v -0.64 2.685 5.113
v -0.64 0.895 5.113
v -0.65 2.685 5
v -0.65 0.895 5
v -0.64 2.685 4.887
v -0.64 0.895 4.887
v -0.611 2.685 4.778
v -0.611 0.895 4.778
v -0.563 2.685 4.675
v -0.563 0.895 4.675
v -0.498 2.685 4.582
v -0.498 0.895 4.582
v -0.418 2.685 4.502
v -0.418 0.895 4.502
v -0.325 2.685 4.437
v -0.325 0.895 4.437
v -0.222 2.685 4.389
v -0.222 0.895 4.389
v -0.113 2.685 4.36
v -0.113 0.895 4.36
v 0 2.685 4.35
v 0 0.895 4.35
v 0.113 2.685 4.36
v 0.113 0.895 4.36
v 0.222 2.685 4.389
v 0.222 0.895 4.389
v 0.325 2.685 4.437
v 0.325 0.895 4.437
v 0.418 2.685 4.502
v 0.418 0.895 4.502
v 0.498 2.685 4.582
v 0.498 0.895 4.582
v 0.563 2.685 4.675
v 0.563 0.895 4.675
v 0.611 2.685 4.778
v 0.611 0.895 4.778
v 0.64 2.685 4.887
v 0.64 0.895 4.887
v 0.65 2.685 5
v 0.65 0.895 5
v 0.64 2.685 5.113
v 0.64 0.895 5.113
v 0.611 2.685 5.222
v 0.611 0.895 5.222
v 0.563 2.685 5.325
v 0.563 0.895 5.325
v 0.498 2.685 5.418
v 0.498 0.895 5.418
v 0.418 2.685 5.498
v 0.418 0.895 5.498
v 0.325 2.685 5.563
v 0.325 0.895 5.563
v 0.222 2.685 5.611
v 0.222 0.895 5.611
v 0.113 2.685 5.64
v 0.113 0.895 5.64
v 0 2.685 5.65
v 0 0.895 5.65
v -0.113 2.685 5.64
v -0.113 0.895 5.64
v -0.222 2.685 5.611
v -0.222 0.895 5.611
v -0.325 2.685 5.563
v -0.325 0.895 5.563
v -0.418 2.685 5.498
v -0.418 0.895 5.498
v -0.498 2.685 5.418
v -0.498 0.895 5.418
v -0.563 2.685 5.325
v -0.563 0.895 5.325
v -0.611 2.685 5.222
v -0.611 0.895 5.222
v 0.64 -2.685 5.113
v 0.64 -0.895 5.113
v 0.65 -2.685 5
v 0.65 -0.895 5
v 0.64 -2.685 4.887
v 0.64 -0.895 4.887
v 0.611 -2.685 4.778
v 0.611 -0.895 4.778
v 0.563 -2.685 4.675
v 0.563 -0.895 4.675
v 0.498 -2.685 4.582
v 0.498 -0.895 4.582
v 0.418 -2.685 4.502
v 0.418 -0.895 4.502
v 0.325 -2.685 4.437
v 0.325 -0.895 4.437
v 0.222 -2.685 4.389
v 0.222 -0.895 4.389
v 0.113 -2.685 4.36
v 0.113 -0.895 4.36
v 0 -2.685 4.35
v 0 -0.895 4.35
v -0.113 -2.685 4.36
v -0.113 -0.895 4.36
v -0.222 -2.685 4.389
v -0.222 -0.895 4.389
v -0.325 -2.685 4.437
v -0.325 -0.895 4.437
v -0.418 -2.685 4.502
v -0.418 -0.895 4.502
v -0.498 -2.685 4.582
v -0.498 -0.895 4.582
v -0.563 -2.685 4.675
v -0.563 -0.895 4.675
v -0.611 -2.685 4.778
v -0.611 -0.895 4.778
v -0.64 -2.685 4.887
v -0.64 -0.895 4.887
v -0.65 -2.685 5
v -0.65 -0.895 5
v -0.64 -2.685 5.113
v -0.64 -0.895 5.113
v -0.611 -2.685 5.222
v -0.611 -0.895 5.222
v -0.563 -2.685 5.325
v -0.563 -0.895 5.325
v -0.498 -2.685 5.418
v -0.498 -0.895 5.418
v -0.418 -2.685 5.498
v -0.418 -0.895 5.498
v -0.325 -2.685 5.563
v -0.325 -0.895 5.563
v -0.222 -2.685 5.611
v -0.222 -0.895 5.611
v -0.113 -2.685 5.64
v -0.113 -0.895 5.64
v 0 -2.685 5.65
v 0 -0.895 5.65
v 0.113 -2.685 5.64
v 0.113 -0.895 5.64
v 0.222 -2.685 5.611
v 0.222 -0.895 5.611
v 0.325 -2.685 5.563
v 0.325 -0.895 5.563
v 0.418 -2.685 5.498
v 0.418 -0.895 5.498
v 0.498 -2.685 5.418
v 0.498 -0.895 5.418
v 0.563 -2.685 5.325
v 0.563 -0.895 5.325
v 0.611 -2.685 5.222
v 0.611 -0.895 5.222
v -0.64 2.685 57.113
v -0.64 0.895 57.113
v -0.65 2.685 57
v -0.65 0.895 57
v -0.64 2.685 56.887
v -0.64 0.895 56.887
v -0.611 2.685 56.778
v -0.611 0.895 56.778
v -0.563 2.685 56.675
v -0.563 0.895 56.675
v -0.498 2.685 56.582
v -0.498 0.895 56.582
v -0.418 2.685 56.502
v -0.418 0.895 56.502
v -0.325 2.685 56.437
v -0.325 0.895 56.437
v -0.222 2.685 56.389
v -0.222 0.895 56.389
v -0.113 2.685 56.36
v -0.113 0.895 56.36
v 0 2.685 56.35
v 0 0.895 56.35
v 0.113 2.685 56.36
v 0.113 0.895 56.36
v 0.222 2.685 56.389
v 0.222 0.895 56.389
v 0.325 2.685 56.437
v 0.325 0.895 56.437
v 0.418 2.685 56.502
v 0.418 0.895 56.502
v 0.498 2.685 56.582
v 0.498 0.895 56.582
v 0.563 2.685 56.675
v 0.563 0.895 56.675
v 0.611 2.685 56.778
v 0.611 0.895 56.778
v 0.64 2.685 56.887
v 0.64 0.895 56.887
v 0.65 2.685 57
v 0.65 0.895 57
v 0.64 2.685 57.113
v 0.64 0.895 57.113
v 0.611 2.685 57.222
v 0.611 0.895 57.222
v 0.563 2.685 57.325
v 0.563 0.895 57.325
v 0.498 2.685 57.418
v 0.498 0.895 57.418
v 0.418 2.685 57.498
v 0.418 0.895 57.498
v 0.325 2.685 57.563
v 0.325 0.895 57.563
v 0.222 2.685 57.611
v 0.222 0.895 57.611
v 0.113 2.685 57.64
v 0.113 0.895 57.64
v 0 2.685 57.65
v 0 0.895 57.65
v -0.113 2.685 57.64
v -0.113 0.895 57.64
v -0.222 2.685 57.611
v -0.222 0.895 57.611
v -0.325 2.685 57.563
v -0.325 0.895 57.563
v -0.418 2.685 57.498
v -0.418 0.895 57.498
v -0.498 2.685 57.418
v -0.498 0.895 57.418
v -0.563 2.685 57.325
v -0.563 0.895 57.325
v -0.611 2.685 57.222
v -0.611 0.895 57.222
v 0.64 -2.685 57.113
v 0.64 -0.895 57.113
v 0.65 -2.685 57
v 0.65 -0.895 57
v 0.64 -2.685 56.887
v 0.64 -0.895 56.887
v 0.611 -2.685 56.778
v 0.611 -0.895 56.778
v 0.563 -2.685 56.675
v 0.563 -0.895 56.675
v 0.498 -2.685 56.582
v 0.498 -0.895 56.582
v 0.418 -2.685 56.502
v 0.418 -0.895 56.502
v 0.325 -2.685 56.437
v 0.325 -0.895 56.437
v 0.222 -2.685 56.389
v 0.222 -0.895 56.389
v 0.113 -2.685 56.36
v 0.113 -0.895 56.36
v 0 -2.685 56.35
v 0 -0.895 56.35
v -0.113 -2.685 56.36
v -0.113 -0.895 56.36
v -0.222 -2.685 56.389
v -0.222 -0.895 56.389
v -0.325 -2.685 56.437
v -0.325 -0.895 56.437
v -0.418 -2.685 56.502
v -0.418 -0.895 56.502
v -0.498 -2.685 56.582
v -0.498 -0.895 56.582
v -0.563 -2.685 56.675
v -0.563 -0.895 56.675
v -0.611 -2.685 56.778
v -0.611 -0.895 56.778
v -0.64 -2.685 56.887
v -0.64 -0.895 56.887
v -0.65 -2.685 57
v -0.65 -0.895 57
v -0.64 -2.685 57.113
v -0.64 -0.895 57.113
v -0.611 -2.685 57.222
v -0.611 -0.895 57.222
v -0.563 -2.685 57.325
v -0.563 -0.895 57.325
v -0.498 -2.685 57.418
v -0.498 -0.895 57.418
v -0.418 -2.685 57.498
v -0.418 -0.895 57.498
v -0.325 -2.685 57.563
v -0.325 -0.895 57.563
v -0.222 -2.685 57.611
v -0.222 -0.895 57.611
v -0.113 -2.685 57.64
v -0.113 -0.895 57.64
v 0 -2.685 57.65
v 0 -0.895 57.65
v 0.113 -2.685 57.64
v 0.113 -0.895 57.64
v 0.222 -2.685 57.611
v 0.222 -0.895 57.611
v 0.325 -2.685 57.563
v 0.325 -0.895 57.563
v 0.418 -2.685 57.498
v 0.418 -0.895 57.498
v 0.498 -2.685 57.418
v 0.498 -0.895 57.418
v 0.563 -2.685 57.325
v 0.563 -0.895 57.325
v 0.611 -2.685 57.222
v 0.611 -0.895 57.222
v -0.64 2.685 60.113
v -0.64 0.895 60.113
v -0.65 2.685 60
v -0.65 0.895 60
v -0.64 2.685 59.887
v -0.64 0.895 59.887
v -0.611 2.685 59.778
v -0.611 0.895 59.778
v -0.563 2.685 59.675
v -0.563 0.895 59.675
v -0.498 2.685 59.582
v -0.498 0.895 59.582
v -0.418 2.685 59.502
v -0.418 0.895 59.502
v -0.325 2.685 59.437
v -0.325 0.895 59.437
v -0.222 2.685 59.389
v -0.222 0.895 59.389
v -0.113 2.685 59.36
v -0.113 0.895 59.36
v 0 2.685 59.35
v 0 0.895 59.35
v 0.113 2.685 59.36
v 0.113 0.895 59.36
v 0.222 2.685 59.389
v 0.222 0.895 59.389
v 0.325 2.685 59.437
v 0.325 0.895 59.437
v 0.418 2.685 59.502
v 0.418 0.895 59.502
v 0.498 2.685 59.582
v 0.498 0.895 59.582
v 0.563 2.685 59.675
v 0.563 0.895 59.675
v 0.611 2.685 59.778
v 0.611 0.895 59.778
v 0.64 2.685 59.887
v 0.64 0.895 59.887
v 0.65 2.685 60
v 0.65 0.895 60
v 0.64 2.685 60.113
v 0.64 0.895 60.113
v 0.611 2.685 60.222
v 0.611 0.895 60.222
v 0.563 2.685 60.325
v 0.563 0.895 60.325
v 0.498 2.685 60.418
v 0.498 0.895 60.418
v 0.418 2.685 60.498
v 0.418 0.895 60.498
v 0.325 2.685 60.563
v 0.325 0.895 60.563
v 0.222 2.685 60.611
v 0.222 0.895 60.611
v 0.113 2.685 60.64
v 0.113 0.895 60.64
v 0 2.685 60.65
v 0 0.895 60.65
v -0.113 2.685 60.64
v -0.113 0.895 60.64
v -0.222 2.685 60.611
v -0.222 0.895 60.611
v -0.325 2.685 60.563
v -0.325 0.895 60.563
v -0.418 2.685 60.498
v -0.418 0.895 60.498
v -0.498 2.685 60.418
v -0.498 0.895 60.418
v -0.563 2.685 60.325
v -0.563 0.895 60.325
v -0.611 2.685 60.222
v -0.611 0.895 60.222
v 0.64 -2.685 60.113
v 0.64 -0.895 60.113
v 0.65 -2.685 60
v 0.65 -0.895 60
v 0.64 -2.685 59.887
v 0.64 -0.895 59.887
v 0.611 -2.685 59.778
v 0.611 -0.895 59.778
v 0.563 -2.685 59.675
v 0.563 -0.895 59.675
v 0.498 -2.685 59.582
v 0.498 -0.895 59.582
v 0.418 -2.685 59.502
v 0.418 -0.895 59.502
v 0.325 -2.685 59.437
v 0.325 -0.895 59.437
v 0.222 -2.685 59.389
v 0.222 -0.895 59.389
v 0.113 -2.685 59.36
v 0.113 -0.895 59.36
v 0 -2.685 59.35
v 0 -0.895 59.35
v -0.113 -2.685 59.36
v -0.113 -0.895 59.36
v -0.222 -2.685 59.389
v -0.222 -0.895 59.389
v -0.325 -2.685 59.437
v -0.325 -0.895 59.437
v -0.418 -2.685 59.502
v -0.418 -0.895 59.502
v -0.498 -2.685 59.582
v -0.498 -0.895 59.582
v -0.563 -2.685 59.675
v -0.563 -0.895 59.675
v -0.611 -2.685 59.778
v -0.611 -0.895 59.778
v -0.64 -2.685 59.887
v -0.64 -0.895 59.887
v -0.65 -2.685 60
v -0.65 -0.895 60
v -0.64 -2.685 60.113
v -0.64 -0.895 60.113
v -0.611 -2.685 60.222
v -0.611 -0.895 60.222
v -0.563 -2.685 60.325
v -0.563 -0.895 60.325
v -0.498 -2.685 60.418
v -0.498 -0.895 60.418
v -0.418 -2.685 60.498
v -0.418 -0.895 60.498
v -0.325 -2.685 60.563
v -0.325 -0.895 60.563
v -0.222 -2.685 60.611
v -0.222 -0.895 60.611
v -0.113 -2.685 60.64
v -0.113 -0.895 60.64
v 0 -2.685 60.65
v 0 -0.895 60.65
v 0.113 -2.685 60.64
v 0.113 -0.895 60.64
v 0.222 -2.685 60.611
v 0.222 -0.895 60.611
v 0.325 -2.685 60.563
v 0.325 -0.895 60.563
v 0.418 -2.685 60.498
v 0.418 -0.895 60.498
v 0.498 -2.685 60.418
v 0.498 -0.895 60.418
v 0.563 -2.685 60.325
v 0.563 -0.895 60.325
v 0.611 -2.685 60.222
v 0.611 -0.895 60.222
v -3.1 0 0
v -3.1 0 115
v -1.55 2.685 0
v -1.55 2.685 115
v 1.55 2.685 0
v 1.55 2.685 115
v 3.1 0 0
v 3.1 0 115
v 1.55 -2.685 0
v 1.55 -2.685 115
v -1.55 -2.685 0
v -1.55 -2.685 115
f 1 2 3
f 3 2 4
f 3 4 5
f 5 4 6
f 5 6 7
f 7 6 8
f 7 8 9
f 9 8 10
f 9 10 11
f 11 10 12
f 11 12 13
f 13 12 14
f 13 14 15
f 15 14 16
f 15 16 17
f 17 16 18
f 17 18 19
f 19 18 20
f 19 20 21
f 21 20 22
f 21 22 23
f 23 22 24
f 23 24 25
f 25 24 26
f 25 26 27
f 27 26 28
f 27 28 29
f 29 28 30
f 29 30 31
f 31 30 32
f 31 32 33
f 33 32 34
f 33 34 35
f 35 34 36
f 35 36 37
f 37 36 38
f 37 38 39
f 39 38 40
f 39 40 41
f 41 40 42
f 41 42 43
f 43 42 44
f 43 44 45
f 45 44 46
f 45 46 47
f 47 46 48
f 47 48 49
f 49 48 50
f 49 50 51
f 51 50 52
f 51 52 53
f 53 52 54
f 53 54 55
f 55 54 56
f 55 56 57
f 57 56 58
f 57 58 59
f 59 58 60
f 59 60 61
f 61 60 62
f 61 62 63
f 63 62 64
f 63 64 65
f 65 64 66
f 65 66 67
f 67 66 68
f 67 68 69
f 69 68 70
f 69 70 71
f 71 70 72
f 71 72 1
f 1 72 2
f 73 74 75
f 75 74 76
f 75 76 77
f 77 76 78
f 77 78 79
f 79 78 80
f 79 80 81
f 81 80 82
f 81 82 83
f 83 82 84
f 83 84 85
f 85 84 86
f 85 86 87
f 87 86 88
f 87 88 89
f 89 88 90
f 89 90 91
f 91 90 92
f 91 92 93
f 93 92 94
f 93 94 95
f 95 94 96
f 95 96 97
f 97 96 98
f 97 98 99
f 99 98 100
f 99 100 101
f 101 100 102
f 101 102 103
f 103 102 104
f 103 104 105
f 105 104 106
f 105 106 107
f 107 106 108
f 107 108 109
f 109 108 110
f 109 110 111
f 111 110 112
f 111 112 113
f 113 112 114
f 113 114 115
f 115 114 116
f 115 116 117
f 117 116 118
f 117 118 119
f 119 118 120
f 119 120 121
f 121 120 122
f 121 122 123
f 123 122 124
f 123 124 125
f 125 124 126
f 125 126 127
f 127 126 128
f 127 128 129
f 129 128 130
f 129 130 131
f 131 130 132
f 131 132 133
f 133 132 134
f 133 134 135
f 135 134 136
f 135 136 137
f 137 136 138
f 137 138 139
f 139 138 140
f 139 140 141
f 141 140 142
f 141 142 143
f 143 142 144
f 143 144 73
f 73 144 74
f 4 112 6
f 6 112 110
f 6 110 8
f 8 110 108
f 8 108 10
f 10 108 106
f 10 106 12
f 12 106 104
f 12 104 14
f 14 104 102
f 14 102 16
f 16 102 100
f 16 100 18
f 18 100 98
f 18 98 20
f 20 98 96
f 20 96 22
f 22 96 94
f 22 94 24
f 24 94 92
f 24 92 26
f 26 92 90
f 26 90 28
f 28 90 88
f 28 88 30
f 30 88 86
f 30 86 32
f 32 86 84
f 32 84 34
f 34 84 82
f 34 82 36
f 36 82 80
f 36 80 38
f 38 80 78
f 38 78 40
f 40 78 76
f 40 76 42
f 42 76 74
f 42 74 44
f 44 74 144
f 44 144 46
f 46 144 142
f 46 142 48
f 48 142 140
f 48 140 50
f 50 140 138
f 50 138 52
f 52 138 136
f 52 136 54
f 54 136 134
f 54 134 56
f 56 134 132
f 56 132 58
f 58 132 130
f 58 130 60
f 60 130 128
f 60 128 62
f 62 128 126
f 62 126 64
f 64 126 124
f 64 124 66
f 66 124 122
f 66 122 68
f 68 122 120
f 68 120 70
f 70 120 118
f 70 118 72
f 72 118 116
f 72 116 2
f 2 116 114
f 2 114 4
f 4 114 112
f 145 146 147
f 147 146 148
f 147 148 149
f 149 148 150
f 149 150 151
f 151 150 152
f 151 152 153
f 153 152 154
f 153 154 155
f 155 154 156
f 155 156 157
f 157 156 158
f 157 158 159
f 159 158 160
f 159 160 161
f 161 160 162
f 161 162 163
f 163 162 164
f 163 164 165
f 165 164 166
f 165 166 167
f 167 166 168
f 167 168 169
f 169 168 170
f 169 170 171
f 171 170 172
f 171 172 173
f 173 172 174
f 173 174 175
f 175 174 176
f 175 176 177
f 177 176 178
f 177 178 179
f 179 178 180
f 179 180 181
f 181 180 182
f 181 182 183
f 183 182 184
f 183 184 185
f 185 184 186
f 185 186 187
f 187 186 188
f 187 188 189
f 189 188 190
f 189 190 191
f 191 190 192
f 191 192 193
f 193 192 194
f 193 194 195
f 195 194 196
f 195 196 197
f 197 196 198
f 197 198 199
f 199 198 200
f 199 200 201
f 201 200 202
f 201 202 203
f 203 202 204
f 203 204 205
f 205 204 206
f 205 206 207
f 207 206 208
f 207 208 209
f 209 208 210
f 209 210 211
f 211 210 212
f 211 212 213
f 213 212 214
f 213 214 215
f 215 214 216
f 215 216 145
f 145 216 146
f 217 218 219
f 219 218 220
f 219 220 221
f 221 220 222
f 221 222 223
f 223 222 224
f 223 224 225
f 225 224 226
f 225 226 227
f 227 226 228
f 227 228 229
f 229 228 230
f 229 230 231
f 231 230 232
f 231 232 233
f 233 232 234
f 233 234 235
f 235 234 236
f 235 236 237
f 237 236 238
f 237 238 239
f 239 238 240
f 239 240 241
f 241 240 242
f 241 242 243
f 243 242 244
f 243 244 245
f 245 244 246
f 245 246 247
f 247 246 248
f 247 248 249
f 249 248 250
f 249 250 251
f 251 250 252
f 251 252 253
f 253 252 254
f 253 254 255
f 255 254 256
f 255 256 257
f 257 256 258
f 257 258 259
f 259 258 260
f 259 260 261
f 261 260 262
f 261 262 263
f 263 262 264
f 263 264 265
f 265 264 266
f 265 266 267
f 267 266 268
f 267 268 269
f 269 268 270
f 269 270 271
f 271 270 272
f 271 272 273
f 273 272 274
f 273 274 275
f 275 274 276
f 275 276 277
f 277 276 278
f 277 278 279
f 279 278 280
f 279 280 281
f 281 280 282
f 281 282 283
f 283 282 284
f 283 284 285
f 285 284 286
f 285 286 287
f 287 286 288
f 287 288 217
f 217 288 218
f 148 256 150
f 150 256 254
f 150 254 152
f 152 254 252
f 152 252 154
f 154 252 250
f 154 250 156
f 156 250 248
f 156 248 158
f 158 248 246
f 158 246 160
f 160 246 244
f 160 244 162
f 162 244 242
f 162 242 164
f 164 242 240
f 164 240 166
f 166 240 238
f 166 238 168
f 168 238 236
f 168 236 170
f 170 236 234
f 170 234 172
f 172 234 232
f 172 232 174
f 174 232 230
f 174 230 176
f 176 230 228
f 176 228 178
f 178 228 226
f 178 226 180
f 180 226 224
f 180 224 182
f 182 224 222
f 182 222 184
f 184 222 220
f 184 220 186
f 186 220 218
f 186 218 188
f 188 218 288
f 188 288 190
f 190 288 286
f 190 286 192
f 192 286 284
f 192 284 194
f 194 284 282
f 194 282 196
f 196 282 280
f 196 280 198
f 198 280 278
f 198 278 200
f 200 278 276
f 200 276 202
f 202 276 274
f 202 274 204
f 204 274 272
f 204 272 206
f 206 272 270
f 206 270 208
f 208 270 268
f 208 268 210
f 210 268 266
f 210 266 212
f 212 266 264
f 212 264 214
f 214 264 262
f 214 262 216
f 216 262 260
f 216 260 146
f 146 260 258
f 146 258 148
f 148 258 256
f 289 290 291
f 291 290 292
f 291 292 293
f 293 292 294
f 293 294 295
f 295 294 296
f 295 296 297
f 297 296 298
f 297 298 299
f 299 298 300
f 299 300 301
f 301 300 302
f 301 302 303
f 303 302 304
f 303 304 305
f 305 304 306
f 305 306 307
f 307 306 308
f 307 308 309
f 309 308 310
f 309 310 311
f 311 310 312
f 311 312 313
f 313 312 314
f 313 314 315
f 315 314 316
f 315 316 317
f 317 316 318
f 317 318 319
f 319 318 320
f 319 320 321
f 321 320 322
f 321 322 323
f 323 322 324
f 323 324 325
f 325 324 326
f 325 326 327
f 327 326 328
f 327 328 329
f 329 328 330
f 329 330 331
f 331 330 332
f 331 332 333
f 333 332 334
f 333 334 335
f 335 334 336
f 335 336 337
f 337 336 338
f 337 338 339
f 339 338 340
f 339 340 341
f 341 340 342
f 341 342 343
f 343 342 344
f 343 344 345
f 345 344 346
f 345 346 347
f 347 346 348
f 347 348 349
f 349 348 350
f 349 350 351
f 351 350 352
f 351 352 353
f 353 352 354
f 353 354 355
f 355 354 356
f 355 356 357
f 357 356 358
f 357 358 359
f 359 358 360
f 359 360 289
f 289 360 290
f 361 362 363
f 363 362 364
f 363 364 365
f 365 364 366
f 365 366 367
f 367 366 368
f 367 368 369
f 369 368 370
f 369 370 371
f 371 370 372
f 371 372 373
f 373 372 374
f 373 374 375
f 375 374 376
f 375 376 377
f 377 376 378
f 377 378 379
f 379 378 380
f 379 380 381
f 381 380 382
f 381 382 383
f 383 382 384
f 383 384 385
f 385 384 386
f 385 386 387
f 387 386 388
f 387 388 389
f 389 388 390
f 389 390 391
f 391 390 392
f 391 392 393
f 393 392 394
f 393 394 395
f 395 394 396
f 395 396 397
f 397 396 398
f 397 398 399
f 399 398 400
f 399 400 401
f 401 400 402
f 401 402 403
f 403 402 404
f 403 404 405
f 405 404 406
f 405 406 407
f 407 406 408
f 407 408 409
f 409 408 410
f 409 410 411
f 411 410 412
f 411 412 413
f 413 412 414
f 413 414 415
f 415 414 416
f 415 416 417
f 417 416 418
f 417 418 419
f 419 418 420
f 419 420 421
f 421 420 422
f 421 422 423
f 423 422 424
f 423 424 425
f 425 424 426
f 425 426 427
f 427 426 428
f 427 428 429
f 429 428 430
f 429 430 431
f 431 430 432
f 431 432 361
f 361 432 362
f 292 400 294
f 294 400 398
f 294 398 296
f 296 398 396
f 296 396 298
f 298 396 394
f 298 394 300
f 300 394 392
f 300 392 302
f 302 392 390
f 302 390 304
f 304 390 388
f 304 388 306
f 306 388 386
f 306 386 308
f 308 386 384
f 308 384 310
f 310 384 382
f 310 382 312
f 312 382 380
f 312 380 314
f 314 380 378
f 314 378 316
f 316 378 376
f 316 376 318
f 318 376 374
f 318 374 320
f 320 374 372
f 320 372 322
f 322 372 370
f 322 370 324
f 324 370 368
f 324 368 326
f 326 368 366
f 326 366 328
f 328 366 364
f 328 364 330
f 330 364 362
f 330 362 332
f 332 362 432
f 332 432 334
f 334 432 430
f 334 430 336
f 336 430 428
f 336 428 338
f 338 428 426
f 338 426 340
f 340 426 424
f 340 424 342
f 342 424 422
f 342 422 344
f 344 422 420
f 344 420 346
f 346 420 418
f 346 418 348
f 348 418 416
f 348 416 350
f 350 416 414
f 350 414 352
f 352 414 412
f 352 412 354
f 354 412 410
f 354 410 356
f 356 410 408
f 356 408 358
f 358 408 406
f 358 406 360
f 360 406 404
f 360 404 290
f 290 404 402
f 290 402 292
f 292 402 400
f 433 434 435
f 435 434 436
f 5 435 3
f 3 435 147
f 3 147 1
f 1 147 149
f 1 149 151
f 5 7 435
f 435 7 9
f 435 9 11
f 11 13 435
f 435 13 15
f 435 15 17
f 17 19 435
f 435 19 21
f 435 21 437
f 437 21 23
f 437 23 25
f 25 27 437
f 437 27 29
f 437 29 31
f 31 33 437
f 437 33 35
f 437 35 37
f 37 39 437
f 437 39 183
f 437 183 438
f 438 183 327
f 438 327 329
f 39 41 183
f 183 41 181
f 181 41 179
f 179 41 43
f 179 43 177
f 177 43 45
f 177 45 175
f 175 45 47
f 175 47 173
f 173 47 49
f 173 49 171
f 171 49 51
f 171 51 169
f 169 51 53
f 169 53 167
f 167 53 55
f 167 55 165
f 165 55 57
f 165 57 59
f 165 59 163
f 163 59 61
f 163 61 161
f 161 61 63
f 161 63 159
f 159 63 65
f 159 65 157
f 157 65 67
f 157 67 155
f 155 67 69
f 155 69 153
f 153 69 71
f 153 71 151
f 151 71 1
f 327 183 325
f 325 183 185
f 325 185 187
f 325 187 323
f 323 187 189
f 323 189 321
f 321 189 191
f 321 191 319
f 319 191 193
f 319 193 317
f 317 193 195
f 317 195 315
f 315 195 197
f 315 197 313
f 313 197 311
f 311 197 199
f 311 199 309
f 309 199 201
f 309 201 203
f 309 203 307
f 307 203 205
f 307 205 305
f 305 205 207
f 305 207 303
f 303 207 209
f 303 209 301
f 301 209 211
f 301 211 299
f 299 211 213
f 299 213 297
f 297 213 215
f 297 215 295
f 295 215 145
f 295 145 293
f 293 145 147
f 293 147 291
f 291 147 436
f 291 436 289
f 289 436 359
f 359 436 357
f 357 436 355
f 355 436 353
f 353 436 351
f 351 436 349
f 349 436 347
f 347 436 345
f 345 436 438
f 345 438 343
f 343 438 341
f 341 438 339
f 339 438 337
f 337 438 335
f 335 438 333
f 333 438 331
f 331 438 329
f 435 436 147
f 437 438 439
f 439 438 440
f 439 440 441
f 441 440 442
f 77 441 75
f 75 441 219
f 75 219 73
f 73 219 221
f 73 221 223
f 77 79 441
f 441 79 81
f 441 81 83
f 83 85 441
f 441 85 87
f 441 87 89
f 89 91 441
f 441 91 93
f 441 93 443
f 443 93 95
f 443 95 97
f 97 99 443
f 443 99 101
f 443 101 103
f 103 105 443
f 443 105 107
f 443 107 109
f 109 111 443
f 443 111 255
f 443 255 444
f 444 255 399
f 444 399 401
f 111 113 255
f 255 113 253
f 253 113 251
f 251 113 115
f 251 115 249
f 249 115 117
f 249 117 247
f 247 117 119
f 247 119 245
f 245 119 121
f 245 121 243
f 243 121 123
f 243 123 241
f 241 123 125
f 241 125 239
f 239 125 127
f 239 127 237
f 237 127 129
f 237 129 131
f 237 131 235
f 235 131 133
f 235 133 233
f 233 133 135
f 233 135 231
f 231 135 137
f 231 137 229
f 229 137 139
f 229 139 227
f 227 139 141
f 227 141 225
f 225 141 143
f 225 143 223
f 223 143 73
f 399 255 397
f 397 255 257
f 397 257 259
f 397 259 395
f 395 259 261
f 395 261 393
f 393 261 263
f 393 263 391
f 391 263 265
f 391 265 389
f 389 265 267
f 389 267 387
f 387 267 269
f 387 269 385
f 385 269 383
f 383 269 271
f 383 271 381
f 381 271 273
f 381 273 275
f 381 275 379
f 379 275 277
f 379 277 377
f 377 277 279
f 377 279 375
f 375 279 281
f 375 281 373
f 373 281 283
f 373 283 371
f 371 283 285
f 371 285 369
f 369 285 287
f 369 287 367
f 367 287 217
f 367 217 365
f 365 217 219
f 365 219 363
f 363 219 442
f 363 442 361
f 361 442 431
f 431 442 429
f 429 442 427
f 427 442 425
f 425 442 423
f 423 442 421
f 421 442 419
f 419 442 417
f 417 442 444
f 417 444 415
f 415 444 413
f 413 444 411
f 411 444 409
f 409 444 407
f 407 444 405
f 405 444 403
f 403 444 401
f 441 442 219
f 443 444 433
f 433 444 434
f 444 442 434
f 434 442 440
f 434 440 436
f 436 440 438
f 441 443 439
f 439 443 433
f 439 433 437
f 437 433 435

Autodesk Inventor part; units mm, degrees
ref_plane "YZ Plane" through (0, 0, 0) normal (1, 0, 0) x (0, 1, 0)
ref_plane "XZ Plane" through (0, 0, 0) normal (0, 1, 0) x (-1, 0, 0)
ref_plane "XY Plane" through (0, 0, 0) normal (0, 0, 1) x (1, 0, 0)
sketch "Sketch1" plane through (0, 0, 0) normal (0, 0, 1) x (1, 0, 0)
  line L0 (0, 0) -> (3.1, 0) construction
  circle A0 centre (0, 0) radius 2.0286 construction
  line L1 (0, 0) -> (1.55, 2.6847) construction
  line L2 (0, 0) -> (-1.55, 2.6847) construction
  line L3 (0, 0) -> (-3.1, 0) construction
  line L4 (0, 0) -> (-1.55, -2.6847) construction
  line L5 (0, 0) -> (1.55, -2.6847) construction
  line L6 (-1.55, 2.6847) -> (1.55, 2.6847)
  line L7 (1.55, 2.6847) -> (3.1, 0)
  line L8 (3.1, 0) -> (1.55, -2.6847)
  line L9 (1.55, -2.6847) -> (-1.55, -2.6847)
  line L10 (-1.55, -2.6847) -> (-3.1, 0)
  line L11 (-3.1, 0) -> (-1.55, 2.6847)
  dimension "d0" = 3.1
  dimension "d3" = 360
extrude "Extrusion1" add sketch "Sketch1" along normal blind 115
sketch "Sketch2" plane through (-1.55, -2.6847, 0) normal (0, -1, 0) x (1, 0, 0)
  circle A0 centre (1.55, 5) radius 0.65
  line L0 (3.1, 0) -> (3.1, 115) projected
  line L1 (0, 0) -> (0, 115) projected
  line L2 (0, 0) -> (3.1, 0) projected
  circle A1 centre (1.55, 60) radius 0.65
  circle A2 centre (1.55, 57) radius 0.65
  point P0 (1.55, 0)
  point P1 (1.55, 0)
  dimension "d7" = 1.3
  dimension "d8" = 5
  dimension "d9" = 60
  dimension "d10" = 3
extrude "Extrusion2" cut sketch "Sketch2" against normal blind 10
properties part number "eje1_n"
